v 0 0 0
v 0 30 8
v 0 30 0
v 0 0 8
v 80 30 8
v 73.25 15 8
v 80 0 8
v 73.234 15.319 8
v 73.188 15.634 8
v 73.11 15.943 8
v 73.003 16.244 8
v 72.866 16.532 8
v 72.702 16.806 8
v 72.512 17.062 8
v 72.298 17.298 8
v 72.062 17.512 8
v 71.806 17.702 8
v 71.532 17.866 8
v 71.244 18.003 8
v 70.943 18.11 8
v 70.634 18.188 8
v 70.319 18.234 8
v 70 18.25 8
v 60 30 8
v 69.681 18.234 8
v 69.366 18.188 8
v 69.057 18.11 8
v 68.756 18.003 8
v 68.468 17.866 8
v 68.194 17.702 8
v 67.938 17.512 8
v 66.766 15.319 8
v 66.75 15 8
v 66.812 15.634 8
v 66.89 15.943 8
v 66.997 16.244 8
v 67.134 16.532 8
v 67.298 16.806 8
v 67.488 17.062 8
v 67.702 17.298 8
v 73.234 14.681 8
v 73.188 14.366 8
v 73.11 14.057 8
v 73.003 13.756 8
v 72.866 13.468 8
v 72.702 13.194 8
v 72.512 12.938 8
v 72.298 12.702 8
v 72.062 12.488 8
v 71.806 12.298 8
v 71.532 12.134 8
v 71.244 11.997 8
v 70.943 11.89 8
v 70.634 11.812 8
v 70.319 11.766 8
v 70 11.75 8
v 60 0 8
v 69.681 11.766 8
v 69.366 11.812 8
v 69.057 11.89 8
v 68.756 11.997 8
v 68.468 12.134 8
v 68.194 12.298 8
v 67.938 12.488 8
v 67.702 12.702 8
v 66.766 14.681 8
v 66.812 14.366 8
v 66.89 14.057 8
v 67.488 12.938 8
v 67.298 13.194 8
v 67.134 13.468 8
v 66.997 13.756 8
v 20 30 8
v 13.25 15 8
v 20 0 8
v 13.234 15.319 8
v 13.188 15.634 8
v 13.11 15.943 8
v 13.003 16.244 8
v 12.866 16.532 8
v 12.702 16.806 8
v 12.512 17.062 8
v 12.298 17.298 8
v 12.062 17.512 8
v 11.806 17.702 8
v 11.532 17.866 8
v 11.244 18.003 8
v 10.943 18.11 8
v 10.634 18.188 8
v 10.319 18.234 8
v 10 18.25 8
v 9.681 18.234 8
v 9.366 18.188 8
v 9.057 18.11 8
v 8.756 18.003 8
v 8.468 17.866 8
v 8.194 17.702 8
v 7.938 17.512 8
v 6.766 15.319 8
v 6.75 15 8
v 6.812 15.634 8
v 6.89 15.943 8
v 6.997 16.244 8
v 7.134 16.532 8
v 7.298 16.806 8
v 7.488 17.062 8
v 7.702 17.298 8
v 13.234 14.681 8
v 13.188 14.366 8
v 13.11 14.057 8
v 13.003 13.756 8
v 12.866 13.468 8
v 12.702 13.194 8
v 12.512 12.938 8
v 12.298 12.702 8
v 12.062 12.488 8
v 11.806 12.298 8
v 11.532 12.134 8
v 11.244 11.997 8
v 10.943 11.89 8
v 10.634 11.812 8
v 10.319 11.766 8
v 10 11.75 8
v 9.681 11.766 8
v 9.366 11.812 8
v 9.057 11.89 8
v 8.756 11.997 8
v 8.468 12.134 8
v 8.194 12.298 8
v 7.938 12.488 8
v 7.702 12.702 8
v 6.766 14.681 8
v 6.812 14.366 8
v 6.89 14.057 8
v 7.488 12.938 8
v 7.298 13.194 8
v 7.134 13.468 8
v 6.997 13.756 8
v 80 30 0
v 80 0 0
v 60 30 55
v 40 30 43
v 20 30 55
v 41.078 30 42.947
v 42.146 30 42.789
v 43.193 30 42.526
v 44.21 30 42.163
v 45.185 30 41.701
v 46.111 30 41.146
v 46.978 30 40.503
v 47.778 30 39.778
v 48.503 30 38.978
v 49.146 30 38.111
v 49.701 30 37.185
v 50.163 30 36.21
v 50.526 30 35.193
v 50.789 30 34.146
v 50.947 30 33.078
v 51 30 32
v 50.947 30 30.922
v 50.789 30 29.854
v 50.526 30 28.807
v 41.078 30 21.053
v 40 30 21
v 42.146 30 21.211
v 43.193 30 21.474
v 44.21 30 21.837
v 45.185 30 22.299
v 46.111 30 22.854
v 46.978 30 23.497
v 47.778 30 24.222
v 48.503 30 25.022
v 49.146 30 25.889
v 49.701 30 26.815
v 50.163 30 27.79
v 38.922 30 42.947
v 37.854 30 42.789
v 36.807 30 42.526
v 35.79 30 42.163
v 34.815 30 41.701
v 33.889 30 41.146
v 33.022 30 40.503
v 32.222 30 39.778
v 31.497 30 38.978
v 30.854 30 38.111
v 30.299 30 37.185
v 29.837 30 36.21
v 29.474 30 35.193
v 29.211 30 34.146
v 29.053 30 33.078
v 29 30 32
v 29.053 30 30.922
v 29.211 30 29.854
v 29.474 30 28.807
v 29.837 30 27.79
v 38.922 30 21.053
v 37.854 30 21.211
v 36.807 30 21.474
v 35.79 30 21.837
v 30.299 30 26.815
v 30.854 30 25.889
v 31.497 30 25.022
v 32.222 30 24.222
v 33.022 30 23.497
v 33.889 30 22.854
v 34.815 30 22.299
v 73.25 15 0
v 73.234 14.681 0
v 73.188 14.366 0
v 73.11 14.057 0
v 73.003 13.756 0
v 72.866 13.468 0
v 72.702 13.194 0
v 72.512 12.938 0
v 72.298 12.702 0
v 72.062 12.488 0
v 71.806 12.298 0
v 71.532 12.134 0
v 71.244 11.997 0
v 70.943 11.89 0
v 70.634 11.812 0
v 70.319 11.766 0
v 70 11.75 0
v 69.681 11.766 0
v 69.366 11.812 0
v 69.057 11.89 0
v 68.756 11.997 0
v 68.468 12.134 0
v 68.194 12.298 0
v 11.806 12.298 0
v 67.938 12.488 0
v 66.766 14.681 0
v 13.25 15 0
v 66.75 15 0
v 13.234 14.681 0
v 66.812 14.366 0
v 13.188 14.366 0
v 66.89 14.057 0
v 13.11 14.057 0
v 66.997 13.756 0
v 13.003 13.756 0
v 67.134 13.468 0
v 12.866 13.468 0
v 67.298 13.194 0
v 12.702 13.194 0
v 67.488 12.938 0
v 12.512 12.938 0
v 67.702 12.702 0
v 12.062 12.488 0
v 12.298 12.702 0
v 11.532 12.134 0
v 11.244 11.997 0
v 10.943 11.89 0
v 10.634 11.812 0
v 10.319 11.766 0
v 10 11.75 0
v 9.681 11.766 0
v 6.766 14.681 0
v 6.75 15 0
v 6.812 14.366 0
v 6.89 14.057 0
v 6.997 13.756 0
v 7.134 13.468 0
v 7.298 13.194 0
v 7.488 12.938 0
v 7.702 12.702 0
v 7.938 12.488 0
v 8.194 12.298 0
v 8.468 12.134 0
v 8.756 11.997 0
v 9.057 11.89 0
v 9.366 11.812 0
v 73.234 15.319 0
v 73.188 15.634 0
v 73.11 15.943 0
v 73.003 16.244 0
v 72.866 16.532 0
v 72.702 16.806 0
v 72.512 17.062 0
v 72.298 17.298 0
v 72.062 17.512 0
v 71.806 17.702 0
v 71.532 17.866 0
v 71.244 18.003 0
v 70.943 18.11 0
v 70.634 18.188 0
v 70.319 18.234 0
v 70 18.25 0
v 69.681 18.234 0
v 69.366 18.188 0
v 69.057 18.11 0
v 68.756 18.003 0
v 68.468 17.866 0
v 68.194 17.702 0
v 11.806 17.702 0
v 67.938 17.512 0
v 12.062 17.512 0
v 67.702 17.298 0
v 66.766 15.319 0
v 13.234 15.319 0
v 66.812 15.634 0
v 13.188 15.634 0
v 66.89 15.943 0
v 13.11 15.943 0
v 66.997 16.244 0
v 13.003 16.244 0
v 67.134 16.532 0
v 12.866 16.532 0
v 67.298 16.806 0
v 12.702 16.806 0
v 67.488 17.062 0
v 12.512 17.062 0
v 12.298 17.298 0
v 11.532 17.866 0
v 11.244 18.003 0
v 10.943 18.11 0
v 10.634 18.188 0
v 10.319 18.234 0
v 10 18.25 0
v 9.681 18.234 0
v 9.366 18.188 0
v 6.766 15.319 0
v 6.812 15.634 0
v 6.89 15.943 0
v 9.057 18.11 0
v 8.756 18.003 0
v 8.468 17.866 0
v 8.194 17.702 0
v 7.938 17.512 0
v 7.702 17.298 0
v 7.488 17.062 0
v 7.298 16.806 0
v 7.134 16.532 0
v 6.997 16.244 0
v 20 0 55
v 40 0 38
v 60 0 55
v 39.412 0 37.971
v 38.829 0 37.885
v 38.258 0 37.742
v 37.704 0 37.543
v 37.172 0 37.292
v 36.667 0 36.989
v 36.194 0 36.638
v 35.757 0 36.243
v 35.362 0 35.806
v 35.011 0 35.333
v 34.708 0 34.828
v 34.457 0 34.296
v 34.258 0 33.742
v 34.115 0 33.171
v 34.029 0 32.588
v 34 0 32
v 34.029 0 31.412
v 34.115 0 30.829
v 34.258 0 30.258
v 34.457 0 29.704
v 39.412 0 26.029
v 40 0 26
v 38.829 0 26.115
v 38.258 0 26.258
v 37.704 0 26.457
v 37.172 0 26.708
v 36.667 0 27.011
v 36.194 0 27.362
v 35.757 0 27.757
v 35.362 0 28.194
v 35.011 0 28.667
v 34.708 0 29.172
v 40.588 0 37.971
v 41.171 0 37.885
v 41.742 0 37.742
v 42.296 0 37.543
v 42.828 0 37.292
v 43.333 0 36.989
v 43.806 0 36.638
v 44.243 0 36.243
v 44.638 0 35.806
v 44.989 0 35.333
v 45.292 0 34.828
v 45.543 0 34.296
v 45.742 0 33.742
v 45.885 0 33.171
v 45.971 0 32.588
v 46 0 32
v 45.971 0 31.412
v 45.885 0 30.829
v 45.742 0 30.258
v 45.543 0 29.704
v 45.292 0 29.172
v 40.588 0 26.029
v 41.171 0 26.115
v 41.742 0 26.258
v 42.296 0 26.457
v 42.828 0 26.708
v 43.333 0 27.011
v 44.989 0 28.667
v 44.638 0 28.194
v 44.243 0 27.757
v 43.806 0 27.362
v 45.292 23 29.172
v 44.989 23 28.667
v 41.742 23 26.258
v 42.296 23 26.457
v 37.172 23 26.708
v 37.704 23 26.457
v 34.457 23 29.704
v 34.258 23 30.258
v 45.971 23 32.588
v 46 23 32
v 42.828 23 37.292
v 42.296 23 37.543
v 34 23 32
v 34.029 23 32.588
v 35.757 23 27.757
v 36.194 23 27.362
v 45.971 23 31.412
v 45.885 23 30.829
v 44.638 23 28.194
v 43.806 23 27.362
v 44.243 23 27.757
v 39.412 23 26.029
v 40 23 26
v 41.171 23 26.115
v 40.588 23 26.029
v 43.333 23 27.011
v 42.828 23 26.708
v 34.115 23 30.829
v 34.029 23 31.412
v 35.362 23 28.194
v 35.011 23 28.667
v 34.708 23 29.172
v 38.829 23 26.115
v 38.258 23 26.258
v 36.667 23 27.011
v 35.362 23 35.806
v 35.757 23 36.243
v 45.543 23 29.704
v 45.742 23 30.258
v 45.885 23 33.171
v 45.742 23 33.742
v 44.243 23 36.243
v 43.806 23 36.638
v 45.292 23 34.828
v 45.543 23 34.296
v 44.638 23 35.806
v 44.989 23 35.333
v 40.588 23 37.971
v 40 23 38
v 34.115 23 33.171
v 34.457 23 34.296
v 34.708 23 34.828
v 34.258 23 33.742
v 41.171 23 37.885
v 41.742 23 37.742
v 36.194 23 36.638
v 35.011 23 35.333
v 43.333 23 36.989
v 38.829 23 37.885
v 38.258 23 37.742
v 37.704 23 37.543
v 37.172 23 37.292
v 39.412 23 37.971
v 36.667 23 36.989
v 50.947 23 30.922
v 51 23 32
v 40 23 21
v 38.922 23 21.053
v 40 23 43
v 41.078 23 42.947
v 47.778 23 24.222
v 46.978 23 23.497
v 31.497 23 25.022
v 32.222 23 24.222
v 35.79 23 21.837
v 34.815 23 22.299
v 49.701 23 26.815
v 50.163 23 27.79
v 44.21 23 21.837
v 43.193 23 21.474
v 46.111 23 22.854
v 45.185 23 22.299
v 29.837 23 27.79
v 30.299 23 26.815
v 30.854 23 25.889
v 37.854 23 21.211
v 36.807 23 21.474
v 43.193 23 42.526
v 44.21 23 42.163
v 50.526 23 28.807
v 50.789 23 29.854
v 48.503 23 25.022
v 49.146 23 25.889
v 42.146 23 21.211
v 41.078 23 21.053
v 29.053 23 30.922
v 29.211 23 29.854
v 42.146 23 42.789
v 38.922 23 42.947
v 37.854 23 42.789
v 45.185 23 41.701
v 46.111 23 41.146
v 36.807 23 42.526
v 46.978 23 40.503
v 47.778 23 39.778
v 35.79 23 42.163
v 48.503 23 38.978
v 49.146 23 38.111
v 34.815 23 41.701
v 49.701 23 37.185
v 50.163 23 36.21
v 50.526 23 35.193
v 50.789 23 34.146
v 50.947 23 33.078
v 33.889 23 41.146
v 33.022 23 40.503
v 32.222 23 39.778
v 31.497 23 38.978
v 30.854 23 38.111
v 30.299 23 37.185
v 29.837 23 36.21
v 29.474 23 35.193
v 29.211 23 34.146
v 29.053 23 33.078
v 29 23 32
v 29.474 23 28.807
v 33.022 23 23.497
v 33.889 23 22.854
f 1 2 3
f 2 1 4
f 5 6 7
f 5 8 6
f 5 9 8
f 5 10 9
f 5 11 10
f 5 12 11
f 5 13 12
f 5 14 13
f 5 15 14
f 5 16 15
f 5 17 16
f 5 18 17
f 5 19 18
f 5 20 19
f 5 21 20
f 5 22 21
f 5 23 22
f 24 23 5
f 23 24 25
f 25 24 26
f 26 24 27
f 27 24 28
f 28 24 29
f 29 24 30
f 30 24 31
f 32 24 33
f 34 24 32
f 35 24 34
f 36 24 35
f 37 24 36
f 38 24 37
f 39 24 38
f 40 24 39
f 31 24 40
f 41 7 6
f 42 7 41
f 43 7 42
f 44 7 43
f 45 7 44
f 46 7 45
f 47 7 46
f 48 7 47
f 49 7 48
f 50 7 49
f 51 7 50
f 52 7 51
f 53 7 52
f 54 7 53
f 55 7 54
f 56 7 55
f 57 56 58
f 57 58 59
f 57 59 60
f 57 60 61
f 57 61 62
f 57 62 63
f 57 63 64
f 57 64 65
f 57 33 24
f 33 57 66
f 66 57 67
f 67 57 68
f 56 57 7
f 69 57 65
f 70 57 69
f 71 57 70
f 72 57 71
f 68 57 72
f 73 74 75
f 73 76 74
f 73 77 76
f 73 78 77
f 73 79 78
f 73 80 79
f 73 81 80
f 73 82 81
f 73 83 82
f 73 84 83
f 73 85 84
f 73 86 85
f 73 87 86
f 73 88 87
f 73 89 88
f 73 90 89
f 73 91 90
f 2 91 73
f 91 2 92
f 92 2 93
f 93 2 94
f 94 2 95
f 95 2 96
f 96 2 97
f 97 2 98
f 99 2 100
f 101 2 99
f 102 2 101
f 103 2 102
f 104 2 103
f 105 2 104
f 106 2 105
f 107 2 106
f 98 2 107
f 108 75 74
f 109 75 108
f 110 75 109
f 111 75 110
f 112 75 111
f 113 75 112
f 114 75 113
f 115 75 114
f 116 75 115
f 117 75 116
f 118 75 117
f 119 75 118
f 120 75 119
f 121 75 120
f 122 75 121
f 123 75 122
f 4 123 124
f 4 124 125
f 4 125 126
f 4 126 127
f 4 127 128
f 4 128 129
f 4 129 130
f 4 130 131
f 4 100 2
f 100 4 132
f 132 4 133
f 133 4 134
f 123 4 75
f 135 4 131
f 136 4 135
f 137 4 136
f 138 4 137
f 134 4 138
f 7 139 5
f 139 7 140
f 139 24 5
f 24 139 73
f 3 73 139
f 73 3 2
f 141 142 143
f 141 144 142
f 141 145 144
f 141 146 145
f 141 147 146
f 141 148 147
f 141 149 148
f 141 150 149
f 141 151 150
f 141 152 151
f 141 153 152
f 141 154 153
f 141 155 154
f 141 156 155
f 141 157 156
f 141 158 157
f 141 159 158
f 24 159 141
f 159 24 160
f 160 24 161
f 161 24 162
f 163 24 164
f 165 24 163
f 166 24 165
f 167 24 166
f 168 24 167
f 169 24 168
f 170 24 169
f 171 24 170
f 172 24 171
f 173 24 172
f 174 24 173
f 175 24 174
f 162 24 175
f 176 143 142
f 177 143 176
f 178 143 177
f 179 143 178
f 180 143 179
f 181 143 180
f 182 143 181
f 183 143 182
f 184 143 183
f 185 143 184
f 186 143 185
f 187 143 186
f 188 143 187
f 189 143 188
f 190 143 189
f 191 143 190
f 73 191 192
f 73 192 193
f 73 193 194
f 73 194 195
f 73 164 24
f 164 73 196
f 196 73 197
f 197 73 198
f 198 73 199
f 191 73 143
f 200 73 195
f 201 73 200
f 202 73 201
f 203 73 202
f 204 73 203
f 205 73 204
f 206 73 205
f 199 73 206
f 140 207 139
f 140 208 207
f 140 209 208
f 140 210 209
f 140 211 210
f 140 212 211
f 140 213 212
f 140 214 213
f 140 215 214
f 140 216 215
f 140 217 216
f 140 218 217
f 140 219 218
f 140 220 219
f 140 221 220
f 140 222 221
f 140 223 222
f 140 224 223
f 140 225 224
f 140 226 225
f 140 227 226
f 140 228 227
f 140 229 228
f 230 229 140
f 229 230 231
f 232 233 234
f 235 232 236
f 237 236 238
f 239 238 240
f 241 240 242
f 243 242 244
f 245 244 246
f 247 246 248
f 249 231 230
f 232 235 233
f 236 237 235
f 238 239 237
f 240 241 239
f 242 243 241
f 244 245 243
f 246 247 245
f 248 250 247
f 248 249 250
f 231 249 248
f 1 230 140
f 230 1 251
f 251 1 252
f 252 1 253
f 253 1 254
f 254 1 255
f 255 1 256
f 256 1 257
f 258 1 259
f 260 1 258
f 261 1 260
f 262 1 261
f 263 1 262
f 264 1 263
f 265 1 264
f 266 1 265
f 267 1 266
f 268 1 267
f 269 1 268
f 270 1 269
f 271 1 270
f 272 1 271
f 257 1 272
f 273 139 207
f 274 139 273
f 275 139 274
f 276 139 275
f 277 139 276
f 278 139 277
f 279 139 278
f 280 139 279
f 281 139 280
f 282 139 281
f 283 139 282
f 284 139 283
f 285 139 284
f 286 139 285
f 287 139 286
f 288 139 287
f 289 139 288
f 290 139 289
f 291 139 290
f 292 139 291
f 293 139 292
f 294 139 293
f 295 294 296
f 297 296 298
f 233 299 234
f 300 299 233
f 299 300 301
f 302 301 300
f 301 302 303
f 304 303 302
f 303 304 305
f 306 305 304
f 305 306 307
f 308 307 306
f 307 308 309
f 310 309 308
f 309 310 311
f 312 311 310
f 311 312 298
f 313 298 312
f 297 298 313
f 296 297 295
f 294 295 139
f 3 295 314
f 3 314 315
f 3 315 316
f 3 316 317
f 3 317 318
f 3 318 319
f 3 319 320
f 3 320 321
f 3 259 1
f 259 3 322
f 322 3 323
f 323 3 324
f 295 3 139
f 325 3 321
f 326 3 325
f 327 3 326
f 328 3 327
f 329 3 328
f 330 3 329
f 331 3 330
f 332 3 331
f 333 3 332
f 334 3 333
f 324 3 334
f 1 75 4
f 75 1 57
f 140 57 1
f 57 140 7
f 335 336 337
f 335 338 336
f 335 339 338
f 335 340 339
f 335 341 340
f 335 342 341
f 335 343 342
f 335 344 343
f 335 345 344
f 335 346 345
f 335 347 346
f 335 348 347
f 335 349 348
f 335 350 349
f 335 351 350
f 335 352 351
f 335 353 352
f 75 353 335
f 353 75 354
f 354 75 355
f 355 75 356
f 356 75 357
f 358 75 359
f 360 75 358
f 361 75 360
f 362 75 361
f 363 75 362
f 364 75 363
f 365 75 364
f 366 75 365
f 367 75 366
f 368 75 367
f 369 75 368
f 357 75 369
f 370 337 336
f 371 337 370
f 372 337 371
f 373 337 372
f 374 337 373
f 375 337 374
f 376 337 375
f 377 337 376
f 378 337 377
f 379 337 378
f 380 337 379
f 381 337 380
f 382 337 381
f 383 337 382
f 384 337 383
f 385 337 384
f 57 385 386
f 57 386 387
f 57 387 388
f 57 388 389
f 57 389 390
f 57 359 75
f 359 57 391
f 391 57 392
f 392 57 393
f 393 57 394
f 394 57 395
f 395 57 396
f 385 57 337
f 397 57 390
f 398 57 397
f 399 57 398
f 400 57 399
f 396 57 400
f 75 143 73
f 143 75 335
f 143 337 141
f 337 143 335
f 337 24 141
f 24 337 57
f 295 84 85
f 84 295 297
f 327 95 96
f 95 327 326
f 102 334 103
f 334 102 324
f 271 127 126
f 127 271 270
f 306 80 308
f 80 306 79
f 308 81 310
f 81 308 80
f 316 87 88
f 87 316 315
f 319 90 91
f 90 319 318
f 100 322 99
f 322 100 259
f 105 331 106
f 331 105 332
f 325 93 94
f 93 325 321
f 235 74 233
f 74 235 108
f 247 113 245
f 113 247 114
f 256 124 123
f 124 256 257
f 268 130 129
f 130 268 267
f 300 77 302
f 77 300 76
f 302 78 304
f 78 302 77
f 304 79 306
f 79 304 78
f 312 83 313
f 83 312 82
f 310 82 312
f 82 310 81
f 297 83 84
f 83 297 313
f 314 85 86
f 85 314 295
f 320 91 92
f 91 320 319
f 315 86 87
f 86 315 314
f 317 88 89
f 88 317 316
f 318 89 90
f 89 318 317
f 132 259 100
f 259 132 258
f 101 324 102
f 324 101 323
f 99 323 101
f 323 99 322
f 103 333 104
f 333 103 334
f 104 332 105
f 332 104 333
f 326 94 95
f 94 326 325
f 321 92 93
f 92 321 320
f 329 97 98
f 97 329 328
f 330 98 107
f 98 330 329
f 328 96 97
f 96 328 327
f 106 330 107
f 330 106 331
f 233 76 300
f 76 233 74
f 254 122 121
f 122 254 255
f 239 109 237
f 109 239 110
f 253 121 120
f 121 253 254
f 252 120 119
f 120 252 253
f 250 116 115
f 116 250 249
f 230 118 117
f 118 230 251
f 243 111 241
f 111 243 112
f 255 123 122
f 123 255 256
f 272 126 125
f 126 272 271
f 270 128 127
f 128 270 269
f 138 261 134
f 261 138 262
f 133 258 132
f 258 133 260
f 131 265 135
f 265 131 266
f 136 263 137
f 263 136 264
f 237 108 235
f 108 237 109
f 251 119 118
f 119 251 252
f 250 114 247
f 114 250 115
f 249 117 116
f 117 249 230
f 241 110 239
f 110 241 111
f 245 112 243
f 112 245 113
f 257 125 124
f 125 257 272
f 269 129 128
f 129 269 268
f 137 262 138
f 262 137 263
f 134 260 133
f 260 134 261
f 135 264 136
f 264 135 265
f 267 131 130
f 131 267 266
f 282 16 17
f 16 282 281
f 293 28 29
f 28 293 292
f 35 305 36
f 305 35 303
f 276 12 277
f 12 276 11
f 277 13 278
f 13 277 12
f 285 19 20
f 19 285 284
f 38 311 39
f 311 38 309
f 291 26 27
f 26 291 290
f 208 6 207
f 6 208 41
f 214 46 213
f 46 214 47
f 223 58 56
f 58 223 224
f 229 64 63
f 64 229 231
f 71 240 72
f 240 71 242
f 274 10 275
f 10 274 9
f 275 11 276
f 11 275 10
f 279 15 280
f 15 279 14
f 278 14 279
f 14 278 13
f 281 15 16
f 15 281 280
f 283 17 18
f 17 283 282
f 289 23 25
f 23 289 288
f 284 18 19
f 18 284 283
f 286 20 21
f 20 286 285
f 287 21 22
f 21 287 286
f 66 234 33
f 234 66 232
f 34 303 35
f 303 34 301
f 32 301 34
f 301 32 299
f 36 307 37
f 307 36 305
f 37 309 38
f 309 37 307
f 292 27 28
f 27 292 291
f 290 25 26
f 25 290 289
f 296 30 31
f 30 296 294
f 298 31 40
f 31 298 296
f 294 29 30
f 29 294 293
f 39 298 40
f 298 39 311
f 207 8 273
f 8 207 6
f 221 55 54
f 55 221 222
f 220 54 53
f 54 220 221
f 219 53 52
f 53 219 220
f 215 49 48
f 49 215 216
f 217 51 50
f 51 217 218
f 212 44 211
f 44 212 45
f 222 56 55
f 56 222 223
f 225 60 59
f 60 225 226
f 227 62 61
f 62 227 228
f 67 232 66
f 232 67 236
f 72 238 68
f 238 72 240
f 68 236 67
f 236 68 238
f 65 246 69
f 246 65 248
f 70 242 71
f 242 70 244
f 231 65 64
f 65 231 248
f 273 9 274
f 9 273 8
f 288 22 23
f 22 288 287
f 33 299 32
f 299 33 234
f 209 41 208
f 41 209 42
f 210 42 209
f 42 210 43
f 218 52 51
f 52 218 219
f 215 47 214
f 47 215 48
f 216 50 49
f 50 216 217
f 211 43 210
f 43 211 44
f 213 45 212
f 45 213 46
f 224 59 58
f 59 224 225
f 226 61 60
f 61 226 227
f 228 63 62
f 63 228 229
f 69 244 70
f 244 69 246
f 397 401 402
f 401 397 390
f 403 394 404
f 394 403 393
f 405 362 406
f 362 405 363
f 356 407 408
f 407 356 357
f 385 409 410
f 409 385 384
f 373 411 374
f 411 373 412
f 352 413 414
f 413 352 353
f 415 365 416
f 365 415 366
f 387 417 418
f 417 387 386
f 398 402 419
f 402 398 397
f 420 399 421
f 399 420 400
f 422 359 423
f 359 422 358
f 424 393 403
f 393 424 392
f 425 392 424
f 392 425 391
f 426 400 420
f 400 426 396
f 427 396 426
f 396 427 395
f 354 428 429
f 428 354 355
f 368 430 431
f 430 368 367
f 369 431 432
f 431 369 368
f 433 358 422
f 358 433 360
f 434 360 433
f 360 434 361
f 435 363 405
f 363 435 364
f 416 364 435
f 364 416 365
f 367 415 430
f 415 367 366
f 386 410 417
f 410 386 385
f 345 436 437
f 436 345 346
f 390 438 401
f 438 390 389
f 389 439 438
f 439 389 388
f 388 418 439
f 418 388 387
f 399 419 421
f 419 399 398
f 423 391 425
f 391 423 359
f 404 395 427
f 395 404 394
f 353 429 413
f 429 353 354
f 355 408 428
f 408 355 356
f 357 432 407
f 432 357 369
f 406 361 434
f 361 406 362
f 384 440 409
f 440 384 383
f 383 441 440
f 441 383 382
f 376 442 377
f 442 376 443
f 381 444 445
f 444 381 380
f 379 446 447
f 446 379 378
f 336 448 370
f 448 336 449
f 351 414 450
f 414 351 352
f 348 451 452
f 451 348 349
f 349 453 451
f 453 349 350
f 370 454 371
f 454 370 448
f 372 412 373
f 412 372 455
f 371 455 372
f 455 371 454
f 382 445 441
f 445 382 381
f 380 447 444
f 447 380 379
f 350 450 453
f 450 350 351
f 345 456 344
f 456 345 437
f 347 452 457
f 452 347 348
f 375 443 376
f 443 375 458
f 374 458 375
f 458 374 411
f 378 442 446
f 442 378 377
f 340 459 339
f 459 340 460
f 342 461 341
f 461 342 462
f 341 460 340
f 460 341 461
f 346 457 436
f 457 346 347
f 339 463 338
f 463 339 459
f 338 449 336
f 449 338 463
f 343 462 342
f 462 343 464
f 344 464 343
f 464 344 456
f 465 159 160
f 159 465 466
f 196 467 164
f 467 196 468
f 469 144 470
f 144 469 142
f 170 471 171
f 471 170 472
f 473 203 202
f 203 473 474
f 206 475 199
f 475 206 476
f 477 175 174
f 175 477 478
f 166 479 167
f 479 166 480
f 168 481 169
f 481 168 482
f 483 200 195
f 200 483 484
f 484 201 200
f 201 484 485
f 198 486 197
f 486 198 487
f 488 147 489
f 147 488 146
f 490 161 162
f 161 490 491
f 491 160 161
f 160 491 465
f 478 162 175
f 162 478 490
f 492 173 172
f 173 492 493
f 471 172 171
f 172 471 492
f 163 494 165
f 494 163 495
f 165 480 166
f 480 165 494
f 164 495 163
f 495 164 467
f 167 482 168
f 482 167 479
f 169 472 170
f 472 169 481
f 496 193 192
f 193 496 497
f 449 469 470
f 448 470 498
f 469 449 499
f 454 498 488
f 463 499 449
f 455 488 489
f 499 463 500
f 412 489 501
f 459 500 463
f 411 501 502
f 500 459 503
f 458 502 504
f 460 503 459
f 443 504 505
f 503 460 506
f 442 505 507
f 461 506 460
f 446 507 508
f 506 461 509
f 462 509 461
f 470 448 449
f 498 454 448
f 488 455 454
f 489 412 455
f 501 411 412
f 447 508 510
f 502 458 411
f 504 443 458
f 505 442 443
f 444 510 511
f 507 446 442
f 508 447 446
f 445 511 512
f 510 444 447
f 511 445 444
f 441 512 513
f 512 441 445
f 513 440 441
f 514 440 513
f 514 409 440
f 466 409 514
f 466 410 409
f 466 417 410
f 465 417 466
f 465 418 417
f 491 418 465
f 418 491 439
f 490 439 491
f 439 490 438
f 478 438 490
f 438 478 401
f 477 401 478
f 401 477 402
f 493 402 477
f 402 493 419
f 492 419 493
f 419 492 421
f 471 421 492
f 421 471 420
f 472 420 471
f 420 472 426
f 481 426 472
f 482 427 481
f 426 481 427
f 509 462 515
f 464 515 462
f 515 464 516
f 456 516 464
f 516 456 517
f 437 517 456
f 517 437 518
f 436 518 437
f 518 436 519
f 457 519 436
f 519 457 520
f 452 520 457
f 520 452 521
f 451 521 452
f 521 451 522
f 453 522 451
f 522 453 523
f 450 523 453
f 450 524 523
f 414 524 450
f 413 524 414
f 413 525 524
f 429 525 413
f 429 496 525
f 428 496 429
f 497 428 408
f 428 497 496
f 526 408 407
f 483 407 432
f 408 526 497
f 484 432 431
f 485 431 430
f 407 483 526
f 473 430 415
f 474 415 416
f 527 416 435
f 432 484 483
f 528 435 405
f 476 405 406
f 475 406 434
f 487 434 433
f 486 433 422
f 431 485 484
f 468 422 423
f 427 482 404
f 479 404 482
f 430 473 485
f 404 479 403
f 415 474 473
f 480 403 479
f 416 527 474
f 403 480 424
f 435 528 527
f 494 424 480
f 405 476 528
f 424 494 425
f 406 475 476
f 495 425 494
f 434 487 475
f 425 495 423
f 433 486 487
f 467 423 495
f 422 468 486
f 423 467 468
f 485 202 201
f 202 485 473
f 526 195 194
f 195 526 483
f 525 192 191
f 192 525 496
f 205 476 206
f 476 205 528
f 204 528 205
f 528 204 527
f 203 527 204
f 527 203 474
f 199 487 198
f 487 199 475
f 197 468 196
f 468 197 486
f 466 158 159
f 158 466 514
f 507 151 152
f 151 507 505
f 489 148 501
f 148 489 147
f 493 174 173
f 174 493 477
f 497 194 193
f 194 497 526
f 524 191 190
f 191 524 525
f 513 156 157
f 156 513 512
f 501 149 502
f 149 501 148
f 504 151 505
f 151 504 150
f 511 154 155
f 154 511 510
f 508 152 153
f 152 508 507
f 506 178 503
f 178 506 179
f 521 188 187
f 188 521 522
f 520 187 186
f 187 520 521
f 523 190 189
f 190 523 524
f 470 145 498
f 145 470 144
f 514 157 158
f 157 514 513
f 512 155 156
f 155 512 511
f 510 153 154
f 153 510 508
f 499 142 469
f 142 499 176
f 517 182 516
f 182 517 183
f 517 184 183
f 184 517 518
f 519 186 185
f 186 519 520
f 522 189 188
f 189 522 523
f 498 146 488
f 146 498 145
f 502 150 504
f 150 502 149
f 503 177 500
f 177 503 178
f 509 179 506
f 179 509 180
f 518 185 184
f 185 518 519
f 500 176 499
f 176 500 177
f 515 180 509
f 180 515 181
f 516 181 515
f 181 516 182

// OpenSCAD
// Original MechIntel educational model. CC0-1.0. Units: mm.
// Not a standardized or load-rated component.
$fn=96;
width=80; depth=30; height=55; passage=12; seat=22; seat_depth=7;
$fn=64;
difference(){
 union(){cube([width,depth,8]);translate([20,0,8]) cube([40,depth,height-8]);}
 translate([40,-1,32]) rotate([-90,0,0]) cylinder(d=passage,h=depth+2);
 translate([40,depth-seat_depth,32]) rotate([-90,0,0]) cylinder(d=seat,h=seat_depth+1);
 for(x=[10,70]) translate([x,15,-1]) cylinder(d=6.5,h=10);
}
